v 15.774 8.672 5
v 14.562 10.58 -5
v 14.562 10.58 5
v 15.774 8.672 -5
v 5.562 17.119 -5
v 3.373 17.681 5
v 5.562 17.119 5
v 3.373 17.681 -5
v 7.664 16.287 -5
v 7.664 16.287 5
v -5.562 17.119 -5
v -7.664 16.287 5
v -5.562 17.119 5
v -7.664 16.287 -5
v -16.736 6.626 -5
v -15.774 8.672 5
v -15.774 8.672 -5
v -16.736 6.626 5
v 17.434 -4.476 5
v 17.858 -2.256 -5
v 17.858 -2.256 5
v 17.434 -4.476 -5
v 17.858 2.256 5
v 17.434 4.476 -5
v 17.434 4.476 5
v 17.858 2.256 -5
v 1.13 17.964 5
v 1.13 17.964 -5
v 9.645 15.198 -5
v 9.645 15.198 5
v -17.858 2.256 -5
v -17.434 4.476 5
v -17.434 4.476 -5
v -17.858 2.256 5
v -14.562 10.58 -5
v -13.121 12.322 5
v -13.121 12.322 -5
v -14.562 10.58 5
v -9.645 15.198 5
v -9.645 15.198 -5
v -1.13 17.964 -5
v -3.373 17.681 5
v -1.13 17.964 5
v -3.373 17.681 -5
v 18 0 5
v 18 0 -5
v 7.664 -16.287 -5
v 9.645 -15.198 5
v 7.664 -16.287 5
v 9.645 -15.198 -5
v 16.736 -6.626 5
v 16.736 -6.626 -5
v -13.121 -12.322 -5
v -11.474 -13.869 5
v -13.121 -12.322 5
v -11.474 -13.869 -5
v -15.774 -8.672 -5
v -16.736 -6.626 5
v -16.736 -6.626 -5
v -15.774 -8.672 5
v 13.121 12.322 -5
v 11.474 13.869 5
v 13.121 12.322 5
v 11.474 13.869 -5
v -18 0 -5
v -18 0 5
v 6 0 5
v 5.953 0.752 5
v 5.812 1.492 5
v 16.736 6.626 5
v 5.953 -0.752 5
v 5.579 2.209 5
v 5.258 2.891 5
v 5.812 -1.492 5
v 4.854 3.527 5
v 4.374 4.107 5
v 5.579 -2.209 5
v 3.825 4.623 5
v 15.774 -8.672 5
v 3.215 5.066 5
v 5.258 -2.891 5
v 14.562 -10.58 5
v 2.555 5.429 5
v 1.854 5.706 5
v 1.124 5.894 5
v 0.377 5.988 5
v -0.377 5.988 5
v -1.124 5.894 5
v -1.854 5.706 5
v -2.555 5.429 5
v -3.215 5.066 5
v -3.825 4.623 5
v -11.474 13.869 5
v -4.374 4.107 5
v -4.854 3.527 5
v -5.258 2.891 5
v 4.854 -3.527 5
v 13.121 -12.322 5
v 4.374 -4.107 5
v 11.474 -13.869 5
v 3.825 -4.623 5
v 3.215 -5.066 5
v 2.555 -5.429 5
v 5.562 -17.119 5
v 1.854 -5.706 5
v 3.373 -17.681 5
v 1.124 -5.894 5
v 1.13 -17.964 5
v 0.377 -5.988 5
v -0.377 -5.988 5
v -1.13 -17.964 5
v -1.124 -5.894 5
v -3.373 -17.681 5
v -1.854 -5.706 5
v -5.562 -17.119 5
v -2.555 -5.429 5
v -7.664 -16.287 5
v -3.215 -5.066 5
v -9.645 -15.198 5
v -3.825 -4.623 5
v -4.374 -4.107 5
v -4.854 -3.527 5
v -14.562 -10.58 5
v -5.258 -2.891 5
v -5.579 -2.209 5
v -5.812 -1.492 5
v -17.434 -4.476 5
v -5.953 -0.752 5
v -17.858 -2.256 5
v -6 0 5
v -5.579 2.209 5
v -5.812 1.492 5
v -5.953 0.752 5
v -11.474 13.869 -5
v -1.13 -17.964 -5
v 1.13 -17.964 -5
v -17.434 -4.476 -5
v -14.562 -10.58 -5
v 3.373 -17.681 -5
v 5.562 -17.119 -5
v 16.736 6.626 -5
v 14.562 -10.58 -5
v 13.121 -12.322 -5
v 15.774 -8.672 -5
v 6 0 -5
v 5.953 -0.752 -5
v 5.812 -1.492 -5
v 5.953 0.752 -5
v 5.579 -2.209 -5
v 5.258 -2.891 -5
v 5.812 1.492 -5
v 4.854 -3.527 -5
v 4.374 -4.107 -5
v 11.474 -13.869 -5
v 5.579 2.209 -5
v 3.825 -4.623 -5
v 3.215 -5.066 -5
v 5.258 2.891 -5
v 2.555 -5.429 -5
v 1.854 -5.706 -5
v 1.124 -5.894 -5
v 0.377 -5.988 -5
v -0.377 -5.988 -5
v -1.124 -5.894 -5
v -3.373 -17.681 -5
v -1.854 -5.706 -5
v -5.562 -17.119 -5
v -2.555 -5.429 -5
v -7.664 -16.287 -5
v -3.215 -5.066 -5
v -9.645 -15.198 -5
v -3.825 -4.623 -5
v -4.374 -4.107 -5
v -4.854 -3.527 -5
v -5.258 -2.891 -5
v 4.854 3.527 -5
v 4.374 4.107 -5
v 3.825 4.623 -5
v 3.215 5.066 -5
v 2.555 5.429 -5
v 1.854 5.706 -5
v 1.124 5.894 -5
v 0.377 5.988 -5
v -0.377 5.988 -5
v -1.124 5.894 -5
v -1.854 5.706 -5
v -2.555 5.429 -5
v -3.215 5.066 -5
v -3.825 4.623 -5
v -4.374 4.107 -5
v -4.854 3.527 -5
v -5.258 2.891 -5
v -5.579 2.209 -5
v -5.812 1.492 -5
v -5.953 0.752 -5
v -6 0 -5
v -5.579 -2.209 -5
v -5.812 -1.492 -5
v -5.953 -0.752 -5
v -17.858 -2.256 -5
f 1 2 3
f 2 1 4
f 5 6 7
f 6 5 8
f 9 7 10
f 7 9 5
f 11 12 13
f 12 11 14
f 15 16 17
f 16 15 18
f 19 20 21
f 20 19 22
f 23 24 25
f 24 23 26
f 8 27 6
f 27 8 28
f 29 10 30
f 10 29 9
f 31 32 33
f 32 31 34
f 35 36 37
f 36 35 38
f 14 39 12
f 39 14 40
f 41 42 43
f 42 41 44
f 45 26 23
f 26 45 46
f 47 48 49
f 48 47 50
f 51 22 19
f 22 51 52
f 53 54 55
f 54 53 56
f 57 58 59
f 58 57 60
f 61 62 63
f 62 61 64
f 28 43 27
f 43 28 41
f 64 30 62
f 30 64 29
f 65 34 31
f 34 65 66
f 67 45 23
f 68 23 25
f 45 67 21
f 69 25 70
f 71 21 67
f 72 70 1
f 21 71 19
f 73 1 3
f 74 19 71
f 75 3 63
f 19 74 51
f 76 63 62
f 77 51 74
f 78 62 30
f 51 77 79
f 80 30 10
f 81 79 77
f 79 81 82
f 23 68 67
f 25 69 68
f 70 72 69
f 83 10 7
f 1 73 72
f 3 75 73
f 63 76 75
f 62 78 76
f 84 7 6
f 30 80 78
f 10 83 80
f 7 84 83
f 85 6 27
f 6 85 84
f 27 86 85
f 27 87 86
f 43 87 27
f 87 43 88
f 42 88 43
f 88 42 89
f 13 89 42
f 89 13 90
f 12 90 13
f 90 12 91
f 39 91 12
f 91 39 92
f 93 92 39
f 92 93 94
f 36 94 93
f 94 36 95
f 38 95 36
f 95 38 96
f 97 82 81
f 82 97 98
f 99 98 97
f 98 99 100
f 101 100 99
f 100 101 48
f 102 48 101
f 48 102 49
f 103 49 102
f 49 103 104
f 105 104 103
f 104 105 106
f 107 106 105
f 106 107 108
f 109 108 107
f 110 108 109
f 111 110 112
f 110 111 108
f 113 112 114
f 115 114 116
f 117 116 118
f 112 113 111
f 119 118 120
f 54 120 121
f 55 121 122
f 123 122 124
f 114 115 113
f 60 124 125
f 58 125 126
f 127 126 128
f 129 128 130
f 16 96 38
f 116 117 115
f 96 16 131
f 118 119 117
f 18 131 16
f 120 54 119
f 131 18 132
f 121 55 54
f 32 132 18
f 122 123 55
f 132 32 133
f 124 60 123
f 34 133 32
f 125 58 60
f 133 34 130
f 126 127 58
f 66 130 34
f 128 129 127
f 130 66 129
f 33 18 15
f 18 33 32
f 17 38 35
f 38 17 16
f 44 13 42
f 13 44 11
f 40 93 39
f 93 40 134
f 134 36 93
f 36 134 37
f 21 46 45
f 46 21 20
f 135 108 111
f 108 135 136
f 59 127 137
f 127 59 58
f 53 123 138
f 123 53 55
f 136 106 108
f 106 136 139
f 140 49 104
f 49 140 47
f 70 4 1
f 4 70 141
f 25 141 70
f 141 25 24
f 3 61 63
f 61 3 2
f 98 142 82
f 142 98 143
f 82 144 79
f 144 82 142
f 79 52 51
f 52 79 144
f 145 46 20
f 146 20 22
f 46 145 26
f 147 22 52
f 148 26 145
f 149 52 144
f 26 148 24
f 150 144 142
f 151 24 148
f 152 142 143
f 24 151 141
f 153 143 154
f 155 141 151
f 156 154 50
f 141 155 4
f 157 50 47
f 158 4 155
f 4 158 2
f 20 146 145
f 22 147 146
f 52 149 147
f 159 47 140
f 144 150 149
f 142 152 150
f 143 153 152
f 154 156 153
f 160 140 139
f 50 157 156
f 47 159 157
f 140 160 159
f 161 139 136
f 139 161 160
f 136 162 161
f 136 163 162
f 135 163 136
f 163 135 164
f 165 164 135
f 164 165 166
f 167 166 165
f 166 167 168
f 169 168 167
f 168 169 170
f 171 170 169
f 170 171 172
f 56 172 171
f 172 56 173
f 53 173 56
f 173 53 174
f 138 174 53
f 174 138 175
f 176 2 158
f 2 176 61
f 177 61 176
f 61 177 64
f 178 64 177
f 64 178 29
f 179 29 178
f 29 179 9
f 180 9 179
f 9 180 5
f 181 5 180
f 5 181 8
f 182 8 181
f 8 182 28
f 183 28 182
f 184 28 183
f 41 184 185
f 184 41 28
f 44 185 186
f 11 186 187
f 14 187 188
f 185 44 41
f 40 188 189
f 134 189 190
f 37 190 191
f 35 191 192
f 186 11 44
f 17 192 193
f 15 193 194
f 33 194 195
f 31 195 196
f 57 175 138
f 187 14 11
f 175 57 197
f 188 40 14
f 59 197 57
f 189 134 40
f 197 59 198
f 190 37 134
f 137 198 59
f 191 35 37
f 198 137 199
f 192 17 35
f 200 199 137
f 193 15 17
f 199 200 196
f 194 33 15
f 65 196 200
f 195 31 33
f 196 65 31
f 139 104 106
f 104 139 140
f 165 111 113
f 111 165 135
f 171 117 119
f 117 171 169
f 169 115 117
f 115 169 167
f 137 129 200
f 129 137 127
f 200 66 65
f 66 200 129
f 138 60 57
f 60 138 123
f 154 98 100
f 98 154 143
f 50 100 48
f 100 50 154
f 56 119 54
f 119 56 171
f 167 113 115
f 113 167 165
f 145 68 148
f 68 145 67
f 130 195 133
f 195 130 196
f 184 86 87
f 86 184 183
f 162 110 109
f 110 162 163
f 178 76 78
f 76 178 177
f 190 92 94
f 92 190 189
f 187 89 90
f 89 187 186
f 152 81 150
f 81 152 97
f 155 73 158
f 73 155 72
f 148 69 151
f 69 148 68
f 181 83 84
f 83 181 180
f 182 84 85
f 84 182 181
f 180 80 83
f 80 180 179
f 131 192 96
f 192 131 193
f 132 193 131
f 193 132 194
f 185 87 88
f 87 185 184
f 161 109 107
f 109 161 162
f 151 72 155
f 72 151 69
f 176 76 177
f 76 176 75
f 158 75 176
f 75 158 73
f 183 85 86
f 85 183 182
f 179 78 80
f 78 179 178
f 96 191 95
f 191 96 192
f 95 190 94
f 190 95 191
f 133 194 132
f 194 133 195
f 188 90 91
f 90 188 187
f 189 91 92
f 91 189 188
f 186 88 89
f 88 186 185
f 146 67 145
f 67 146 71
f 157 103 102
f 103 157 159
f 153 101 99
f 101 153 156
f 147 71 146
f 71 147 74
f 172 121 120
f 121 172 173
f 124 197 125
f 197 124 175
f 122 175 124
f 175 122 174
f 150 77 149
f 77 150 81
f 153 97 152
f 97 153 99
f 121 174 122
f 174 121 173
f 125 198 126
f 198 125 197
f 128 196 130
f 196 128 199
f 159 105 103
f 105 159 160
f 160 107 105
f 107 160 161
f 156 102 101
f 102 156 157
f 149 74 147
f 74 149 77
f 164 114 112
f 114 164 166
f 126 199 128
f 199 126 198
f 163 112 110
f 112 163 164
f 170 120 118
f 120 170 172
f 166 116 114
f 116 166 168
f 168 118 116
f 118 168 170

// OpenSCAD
$fn = 50;


difference() {
	union() {
		translate(v = [0, 0, -5.0000000000]) {
			cylinder(h = 10, r = 18.0000000000);
		}
	}
	union() {
		translate(v = [0, 0, -100.0000000000]) {
			cylinder(h = 200, r = 6);
		}
	}
}
